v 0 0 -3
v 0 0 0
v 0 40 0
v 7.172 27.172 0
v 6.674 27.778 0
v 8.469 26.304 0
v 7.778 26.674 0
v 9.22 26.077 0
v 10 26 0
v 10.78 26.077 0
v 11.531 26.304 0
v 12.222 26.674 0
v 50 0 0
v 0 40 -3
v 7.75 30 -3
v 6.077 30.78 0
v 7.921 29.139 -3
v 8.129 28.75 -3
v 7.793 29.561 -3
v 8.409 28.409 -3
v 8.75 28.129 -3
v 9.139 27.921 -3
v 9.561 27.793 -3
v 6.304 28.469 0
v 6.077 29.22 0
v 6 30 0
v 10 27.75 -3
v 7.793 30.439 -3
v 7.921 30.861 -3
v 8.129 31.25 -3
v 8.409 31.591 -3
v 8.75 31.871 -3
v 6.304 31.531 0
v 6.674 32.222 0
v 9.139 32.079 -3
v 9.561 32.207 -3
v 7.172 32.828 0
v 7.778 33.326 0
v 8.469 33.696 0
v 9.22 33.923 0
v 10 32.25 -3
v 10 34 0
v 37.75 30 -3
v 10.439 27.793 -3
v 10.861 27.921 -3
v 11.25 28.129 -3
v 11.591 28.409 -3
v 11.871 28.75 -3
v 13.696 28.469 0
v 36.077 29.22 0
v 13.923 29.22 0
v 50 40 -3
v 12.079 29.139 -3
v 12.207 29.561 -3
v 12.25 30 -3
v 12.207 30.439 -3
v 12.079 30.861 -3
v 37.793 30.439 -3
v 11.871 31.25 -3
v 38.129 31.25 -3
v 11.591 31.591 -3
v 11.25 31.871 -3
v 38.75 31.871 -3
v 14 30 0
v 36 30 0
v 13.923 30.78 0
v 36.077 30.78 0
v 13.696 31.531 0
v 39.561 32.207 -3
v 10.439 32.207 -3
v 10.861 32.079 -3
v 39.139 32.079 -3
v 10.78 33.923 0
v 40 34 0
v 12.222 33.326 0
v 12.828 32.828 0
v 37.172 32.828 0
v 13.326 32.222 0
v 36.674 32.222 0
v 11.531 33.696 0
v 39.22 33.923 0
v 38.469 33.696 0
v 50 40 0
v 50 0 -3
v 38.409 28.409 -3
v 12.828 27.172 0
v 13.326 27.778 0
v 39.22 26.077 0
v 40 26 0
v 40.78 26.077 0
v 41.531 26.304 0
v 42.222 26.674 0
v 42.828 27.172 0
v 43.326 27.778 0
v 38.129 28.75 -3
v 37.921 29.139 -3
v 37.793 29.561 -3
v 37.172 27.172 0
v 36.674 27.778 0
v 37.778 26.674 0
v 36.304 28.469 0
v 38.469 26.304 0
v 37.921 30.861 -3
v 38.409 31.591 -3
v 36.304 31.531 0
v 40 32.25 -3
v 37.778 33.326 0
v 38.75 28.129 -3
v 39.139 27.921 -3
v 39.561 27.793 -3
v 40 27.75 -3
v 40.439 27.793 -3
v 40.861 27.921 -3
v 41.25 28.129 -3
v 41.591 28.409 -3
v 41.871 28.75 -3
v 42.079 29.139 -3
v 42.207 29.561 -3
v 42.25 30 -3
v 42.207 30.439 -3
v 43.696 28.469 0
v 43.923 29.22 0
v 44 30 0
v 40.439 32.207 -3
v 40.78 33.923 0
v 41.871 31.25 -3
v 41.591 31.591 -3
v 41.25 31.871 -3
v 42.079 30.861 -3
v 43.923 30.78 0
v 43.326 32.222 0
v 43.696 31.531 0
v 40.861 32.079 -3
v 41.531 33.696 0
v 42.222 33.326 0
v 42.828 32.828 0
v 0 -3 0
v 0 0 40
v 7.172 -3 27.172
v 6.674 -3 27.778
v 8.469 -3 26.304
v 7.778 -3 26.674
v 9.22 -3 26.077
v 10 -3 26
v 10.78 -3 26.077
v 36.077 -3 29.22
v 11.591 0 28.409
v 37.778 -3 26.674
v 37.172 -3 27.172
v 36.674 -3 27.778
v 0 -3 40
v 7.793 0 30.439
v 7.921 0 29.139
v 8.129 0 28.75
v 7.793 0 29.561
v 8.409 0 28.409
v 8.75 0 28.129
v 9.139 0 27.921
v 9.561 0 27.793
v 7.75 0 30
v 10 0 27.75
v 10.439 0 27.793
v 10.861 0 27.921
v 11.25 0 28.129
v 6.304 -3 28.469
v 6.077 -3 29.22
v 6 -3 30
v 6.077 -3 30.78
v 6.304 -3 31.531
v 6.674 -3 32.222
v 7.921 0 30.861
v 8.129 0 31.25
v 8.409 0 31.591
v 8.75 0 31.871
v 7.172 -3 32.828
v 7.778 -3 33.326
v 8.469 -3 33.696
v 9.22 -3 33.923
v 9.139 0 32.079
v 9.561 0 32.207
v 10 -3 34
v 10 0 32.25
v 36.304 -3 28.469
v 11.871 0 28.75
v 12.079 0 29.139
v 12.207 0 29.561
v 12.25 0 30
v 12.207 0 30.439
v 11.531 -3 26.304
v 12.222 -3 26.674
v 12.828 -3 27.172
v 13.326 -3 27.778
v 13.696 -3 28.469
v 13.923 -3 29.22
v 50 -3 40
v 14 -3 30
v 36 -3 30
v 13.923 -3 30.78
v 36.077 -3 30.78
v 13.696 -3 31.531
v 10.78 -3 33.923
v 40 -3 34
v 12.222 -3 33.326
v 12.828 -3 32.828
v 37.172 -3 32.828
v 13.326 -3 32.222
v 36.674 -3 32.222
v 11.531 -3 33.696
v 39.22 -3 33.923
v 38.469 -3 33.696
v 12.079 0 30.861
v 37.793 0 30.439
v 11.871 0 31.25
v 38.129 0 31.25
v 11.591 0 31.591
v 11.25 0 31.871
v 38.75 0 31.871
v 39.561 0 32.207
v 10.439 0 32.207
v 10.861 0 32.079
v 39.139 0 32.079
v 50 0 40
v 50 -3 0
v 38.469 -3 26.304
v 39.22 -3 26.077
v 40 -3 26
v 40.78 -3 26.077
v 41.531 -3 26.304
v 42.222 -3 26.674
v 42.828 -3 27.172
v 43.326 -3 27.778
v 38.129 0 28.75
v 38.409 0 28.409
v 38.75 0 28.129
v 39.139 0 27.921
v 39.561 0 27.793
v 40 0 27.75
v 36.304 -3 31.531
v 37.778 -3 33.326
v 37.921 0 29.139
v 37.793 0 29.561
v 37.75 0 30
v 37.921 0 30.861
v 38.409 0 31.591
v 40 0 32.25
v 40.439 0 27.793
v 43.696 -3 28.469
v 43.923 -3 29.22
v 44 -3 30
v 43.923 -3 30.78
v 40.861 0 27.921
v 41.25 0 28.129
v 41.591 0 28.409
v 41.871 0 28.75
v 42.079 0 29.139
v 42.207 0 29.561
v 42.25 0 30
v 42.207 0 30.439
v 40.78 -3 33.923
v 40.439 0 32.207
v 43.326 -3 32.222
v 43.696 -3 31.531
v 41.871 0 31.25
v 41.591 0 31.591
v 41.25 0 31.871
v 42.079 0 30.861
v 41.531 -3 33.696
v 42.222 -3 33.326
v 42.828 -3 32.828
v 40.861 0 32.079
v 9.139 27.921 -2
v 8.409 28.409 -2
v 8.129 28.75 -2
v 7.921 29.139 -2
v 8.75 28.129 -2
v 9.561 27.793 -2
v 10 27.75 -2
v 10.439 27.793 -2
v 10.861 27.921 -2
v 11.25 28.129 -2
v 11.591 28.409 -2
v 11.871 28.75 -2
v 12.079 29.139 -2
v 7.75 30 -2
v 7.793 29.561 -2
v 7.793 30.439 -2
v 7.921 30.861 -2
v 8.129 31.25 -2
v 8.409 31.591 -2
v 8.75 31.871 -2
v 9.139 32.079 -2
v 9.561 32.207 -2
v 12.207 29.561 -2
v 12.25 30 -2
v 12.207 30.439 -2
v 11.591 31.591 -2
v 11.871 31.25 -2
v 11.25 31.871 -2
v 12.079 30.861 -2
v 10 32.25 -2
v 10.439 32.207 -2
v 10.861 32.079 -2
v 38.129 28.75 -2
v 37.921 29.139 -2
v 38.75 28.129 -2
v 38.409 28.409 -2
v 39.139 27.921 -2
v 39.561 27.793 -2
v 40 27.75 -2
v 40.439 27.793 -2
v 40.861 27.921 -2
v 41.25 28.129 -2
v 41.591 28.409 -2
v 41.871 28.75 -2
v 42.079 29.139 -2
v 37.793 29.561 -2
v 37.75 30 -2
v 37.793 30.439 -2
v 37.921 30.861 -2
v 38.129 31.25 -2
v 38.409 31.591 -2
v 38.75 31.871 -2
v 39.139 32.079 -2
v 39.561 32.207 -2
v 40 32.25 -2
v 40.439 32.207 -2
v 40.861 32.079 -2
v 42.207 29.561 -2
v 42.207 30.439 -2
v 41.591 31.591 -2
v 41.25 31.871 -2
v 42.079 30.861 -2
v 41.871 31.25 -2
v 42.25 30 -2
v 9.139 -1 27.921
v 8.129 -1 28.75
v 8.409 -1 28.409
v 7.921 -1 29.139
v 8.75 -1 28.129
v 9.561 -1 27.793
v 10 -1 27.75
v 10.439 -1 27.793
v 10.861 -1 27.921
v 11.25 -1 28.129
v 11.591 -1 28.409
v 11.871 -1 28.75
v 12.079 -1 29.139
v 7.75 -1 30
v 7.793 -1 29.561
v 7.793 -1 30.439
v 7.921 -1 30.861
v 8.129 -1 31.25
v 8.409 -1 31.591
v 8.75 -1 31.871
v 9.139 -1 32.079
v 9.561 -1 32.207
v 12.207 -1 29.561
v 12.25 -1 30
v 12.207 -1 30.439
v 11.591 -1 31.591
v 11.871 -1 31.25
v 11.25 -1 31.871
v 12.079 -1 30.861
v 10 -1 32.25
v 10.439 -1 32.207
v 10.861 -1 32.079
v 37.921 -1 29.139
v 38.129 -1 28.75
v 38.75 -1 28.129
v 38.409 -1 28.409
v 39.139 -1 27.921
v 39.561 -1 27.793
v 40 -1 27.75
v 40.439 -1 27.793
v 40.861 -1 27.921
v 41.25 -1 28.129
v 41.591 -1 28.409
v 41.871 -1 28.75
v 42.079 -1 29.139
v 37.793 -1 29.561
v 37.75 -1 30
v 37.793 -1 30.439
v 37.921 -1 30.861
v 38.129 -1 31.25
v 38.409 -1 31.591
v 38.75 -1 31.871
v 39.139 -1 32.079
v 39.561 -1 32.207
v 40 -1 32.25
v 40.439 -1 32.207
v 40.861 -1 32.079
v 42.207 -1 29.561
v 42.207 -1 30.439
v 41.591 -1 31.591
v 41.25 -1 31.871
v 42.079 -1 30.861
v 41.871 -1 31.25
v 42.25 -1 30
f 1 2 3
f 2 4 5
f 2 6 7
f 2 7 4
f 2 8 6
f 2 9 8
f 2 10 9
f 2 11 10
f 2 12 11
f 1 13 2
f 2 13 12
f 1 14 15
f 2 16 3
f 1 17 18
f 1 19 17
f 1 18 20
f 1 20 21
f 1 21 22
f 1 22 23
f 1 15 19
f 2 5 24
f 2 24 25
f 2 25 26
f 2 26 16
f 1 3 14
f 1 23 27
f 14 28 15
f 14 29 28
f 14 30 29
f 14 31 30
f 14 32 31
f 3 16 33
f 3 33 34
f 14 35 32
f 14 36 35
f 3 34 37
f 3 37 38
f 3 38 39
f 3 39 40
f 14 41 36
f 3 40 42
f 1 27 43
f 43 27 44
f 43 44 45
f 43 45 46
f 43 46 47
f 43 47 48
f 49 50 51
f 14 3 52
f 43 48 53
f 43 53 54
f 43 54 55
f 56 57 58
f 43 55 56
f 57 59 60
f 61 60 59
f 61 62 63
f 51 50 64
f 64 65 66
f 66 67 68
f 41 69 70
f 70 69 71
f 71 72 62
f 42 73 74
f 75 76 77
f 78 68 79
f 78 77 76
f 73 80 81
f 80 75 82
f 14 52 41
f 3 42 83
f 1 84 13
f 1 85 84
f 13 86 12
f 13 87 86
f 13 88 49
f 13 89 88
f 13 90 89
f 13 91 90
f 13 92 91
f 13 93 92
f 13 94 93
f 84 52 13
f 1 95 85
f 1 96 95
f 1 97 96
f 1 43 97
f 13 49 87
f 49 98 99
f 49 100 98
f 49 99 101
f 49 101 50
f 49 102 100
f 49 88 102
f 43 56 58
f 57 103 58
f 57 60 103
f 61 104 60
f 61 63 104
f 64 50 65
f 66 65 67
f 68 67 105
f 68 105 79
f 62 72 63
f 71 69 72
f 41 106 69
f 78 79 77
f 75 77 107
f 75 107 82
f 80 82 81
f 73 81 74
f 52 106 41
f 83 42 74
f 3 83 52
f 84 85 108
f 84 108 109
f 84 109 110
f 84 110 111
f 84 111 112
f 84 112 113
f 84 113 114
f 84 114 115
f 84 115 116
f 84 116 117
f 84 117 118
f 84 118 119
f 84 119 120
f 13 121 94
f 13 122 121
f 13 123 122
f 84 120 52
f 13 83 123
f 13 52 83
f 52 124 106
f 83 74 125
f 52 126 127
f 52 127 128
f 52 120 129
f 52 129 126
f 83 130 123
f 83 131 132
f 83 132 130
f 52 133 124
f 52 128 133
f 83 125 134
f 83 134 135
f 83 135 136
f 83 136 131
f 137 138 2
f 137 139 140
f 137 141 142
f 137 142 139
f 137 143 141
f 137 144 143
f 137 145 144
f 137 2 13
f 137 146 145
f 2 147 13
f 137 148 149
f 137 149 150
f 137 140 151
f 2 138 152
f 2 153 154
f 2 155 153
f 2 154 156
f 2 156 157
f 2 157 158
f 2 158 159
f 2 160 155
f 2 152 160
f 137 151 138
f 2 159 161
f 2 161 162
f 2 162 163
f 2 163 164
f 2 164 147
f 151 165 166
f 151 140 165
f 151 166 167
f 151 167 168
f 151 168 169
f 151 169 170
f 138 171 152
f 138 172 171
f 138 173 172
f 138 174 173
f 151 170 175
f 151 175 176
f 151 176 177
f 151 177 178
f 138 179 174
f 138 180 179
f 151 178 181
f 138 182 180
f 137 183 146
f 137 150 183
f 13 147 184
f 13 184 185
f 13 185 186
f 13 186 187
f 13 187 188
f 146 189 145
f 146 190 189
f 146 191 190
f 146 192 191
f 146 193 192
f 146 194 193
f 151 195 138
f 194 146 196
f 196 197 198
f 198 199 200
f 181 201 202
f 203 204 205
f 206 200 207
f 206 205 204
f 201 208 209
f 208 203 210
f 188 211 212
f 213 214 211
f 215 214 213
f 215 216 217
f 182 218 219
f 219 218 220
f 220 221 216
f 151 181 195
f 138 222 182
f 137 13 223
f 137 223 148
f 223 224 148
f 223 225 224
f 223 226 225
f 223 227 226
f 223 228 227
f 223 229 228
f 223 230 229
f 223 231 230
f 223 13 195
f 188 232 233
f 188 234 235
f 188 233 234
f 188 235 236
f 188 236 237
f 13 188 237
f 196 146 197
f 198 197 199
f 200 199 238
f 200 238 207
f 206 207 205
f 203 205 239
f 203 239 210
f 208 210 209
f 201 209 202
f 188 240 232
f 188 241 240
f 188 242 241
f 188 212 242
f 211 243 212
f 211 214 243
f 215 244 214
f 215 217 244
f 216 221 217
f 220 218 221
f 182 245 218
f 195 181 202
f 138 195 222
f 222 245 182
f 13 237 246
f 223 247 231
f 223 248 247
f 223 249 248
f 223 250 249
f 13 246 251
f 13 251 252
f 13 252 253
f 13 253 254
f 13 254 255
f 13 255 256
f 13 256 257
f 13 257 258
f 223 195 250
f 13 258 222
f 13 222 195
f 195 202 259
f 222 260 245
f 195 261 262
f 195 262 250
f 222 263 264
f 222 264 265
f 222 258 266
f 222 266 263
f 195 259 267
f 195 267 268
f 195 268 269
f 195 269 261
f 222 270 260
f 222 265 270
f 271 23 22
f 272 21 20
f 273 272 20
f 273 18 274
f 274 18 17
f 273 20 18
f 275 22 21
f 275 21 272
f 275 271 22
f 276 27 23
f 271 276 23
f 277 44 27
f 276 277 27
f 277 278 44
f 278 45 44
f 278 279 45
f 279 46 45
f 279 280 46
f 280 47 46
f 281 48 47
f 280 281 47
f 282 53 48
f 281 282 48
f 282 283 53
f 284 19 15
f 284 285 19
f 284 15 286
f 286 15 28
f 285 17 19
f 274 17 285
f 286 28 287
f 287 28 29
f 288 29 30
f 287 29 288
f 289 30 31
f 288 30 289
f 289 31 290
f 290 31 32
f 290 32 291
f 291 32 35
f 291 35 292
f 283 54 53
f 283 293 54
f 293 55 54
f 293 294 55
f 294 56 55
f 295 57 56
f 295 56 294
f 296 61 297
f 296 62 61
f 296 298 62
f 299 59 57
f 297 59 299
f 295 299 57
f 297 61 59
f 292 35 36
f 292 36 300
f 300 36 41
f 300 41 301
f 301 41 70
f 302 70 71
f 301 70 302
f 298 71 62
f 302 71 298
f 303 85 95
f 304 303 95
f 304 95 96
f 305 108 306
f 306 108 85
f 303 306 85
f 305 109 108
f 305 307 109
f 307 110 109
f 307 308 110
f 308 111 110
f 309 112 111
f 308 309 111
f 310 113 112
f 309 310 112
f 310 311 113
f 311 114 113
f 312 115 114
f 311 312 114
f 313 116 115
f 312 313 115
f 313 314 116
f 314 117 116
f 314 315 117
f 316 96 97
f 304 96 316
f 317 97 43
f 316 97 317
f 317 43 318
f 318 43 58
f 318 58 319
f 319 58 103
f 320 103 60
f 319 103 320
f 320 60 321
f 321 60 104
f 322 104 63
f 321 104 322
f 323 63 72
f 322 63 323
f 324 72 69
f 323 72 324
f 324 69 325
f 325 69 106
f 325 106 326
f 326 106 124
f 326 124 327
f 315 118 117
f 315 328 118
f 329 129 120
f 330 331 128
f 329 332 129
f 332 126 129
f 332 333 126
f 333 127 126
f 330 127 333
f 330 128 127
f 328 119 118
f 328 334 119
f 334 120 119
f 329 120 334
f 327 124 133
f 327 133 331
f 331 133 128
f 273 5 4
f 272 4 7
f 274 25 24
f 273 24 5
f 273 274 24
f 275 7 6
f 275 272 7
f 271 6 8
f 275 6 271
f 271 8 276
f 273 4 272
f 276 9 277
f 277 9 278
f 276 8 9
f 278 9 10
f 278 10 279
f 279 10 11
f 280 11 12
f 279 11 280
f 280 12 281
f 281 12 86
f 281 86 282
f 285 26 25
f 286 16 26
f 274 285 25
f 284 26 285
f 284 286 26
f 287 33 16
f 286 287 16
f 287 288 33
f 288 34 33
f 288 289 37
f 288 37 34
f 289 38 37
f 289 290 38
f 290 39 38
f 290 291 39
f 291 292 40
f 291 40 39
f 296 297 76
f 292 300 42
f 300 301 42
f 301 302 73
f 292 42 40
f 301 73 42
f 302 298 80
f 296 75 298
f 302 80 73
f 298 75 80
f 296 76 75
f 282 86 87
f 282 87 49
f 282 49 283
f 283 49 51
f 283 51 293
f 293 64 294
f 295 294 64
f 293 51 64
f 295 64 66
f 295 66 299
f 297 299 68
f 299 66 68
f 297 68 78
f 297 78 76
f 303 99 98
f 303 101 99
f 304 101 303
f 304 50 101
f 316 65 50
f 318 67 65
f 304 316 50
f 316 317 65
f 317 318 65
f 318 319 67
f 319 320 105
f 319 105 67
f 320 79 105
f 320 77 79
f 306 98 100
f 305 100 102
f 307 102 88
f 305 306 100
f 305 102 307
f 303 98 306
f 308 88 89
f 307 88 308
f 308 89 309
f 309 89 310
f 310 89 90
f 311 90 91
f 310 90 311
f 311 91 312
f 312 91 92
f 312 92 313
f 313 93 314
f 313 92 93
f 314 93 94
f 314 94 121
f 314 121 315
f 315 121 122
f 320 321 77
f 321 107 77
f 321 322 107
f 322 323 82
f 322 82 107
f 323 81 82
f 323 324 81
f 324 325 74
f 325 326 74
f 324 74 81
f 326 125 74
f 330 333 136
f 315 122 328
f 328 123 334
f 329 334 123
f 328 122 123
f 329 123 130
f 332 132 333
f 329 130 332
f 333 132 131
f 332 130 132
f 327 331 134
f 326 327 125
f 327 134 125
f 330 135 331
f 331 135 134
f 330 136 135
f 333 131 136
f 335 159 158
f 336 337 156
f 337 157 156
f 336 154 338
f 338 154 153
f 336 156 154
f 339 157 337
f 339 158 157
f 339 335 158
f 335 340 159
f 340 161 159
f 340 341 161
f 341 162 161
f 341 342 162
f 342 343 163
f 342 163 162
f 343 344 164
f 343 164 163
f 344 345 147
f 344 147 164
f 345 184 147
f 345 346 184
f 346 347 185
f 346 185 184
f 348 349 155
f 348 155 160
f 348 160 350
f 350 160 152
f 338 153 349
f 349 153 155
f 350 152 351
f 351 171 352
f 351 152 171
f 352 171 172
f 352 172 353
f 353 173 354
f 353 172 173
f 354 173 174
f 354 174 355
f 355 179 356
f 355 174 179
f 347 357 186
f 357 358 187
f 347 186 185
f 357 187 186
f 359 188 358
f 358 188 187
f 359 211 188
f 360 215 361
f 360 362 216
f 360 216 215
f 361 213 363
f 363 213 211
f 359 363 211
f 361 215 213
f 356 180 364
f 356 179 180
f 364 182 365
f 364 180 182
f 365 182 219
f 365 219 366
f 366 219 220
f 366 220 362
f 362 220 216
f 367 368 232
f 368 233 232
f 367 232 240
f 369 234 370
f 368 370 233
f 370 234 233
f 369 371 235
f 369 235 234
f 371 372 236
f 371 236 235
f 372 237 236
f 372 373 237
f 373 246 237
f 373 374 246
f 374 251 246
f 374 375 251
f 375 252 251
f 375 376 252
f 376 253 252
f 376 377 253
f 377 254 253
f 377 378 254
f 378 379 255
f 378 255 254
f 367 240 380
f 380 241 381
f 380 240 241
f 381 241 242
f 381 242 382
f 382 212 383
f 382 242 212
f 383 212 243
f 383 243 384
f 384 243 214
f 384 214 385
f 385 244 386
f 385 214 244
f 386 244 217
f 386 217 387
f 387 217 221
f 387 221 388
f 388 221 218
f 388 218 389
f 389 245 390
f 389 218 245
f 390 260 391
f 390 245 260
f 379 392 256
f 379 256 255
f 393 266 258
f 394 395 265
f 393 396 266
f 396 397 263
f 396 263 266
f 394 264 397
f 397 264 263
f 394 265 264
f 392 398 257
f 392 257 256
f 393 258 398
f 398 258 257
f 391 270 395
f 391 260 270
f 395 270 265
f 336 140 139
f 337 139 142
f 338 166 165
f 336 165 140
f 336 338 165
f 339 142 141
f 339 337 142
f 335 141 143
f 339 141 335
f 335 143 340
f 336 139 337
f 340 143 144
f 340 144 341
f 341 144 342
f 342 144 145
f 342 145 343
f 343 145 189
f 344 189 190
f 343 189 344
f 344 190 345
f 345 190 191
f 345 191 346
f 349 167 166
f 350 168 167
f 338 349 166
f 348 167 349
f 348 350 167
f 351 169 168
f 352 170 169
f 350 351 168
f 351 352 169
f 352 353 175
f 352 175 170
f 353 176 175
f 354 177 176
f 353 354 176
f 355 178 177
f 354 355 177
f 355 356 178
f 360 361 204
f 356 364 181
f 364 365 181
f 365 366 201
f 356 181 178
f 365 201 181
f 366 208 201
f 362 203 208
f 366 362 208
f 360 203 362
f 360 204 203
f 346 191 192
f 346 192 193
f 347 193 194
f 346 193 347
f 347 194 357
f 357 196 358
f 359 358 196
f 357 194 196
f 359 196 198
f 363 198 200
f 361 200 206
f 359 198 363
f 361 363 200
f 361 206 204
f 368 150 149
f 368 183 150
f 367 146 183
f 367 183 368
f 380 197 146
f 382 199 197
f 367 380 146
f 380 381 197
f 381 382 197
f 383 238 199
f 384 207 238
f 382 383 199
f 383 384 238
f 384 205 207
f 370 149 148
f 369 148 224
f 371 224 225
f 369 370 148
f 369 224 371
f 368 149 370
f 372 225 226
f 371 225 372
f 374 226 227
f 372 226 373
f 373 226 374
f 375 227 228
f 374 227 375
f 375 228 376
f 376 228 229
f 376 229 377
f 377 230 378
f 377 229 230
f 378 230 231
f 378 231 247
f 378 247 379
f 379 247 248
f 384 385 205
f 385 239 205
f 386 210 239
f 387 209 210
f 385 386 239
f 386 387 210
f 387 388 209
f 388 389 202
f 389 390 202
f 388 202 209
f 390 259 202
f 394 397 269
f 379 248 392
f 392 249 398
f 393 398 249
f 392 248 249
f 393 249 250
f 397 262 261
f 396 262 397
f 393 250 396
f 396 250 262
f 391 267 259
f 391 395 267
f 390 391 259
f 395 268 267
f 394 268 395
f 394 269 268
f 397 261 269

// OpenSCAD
// L-Bracket
// Inner corner at origin
// Horizontal flange extends in +Y direction
// Vertical flange extends in +Z direction

// Parameters
width        = 50;   // X direction
h_depth      = 40;   // Horizontal flange depth (Y direction)
v_height     = 40;   // Vertical flange height (Z direction)
thickness    = 3;    // Plate thickness

// Countersunk hole parameters
through_d    = 4.5;  // Through hole diameter (M4)
cs_d         = 8.0;  // Countersink diameter
cs_depth     = 2.0;  // Countersink depth
edge_offset  = 10;   // Distance from edge to hole center
lr_offset    = 15;   // Distance from center-line to each hole (left/right)

module countersunk_hole(depth, from_top=true) {
    // Cylindrical through hole + countersink cone
    // Hole axis along Z; countersink at +Z face when from_top=true
    union() {
        // Through hole
        cylinder(d=through_d, h=depth, center=false, $fn=32);
        if (from_top) {
            // Countersink at top face (z = depth)
            translate([0, 0, depth - cs_depth])
                cylinder(d1=through_d, d2=cs_d, h=cs_depth, $fn=32);
        } else {
            // Countersink at bottom face (z = 0)
            cylinder(d1=cs_d, d2=through_d, h=cs_depth, $fn=32);
        }
    }
}

difference() {
    union() {
        // Horizontal flange: lies on XY plane, extends in +Y
        // Z from -thickness to 0  →  but inner corner is at origin,
        // so horizontal plate occupies Z = [-thickness, 0], Y = [0, h_depth]
        translate([0, 0, -thickness])
            cube([width, h_depth, thickness]);

        // Vertical flange: stands in XZ plane, extends in +Z
        // Y from -thickness to 0, Z = [0, v_height]
        translate([0, -thickness, 0])
            cube([width, thickness, v_height]);
    }

    // --- Countersunk holes in HORIZONTAL flange ---
    // Bolt heads on top (outside = +Z face at z=0), so countersink at top.
    // Holes located at Y = h_depth - edge_offset (10 mm from far edge)
    // X positions: width/2 ± lr_offset
    for (xpos = [width/2 - lr_offset, width/2 + lr_offset]) {
        translate([xpos, h_depth - edge_offset, -thickness])
            // from_top=false → countersink at bottom (z=0 of the shifted solid = z=-thickness global)
            // Actually we want countersink on the OUTER (top) face which is z=0 global.
            // Hole goes from z=-thickness upward, countersink at the top (z=0 global).
            countersunk_hole(thickness, from_top=true);
    }

    // --- Countersunk holes in VERTICAL flange ---
    // Bolt heads on outer face (outside = -Y face at y=-thickness).
    // Holes located at Z = v_height - edge_offset (10 mm from top edge)
    // X positions: width/2 ± lr_offset
    // We'll rotate the hole so its axis is along Y.
    for (xpos = [width/2 - lr_offset, width/2 + lr_offset]) {
        translate([xpos, -thickness, v_height - edge_offset])
            rotate([-90, 0, 0])
                // Hole travels in +Y from y=-thickness to y=0
                // Countersink at top of hole cylinder = outer face (y=-thickness side)
                // from_top=false puts countersink at z=0 of local system = y=-thickness global
                countersunk_hole(thickness, from_top=false);
    }
}
